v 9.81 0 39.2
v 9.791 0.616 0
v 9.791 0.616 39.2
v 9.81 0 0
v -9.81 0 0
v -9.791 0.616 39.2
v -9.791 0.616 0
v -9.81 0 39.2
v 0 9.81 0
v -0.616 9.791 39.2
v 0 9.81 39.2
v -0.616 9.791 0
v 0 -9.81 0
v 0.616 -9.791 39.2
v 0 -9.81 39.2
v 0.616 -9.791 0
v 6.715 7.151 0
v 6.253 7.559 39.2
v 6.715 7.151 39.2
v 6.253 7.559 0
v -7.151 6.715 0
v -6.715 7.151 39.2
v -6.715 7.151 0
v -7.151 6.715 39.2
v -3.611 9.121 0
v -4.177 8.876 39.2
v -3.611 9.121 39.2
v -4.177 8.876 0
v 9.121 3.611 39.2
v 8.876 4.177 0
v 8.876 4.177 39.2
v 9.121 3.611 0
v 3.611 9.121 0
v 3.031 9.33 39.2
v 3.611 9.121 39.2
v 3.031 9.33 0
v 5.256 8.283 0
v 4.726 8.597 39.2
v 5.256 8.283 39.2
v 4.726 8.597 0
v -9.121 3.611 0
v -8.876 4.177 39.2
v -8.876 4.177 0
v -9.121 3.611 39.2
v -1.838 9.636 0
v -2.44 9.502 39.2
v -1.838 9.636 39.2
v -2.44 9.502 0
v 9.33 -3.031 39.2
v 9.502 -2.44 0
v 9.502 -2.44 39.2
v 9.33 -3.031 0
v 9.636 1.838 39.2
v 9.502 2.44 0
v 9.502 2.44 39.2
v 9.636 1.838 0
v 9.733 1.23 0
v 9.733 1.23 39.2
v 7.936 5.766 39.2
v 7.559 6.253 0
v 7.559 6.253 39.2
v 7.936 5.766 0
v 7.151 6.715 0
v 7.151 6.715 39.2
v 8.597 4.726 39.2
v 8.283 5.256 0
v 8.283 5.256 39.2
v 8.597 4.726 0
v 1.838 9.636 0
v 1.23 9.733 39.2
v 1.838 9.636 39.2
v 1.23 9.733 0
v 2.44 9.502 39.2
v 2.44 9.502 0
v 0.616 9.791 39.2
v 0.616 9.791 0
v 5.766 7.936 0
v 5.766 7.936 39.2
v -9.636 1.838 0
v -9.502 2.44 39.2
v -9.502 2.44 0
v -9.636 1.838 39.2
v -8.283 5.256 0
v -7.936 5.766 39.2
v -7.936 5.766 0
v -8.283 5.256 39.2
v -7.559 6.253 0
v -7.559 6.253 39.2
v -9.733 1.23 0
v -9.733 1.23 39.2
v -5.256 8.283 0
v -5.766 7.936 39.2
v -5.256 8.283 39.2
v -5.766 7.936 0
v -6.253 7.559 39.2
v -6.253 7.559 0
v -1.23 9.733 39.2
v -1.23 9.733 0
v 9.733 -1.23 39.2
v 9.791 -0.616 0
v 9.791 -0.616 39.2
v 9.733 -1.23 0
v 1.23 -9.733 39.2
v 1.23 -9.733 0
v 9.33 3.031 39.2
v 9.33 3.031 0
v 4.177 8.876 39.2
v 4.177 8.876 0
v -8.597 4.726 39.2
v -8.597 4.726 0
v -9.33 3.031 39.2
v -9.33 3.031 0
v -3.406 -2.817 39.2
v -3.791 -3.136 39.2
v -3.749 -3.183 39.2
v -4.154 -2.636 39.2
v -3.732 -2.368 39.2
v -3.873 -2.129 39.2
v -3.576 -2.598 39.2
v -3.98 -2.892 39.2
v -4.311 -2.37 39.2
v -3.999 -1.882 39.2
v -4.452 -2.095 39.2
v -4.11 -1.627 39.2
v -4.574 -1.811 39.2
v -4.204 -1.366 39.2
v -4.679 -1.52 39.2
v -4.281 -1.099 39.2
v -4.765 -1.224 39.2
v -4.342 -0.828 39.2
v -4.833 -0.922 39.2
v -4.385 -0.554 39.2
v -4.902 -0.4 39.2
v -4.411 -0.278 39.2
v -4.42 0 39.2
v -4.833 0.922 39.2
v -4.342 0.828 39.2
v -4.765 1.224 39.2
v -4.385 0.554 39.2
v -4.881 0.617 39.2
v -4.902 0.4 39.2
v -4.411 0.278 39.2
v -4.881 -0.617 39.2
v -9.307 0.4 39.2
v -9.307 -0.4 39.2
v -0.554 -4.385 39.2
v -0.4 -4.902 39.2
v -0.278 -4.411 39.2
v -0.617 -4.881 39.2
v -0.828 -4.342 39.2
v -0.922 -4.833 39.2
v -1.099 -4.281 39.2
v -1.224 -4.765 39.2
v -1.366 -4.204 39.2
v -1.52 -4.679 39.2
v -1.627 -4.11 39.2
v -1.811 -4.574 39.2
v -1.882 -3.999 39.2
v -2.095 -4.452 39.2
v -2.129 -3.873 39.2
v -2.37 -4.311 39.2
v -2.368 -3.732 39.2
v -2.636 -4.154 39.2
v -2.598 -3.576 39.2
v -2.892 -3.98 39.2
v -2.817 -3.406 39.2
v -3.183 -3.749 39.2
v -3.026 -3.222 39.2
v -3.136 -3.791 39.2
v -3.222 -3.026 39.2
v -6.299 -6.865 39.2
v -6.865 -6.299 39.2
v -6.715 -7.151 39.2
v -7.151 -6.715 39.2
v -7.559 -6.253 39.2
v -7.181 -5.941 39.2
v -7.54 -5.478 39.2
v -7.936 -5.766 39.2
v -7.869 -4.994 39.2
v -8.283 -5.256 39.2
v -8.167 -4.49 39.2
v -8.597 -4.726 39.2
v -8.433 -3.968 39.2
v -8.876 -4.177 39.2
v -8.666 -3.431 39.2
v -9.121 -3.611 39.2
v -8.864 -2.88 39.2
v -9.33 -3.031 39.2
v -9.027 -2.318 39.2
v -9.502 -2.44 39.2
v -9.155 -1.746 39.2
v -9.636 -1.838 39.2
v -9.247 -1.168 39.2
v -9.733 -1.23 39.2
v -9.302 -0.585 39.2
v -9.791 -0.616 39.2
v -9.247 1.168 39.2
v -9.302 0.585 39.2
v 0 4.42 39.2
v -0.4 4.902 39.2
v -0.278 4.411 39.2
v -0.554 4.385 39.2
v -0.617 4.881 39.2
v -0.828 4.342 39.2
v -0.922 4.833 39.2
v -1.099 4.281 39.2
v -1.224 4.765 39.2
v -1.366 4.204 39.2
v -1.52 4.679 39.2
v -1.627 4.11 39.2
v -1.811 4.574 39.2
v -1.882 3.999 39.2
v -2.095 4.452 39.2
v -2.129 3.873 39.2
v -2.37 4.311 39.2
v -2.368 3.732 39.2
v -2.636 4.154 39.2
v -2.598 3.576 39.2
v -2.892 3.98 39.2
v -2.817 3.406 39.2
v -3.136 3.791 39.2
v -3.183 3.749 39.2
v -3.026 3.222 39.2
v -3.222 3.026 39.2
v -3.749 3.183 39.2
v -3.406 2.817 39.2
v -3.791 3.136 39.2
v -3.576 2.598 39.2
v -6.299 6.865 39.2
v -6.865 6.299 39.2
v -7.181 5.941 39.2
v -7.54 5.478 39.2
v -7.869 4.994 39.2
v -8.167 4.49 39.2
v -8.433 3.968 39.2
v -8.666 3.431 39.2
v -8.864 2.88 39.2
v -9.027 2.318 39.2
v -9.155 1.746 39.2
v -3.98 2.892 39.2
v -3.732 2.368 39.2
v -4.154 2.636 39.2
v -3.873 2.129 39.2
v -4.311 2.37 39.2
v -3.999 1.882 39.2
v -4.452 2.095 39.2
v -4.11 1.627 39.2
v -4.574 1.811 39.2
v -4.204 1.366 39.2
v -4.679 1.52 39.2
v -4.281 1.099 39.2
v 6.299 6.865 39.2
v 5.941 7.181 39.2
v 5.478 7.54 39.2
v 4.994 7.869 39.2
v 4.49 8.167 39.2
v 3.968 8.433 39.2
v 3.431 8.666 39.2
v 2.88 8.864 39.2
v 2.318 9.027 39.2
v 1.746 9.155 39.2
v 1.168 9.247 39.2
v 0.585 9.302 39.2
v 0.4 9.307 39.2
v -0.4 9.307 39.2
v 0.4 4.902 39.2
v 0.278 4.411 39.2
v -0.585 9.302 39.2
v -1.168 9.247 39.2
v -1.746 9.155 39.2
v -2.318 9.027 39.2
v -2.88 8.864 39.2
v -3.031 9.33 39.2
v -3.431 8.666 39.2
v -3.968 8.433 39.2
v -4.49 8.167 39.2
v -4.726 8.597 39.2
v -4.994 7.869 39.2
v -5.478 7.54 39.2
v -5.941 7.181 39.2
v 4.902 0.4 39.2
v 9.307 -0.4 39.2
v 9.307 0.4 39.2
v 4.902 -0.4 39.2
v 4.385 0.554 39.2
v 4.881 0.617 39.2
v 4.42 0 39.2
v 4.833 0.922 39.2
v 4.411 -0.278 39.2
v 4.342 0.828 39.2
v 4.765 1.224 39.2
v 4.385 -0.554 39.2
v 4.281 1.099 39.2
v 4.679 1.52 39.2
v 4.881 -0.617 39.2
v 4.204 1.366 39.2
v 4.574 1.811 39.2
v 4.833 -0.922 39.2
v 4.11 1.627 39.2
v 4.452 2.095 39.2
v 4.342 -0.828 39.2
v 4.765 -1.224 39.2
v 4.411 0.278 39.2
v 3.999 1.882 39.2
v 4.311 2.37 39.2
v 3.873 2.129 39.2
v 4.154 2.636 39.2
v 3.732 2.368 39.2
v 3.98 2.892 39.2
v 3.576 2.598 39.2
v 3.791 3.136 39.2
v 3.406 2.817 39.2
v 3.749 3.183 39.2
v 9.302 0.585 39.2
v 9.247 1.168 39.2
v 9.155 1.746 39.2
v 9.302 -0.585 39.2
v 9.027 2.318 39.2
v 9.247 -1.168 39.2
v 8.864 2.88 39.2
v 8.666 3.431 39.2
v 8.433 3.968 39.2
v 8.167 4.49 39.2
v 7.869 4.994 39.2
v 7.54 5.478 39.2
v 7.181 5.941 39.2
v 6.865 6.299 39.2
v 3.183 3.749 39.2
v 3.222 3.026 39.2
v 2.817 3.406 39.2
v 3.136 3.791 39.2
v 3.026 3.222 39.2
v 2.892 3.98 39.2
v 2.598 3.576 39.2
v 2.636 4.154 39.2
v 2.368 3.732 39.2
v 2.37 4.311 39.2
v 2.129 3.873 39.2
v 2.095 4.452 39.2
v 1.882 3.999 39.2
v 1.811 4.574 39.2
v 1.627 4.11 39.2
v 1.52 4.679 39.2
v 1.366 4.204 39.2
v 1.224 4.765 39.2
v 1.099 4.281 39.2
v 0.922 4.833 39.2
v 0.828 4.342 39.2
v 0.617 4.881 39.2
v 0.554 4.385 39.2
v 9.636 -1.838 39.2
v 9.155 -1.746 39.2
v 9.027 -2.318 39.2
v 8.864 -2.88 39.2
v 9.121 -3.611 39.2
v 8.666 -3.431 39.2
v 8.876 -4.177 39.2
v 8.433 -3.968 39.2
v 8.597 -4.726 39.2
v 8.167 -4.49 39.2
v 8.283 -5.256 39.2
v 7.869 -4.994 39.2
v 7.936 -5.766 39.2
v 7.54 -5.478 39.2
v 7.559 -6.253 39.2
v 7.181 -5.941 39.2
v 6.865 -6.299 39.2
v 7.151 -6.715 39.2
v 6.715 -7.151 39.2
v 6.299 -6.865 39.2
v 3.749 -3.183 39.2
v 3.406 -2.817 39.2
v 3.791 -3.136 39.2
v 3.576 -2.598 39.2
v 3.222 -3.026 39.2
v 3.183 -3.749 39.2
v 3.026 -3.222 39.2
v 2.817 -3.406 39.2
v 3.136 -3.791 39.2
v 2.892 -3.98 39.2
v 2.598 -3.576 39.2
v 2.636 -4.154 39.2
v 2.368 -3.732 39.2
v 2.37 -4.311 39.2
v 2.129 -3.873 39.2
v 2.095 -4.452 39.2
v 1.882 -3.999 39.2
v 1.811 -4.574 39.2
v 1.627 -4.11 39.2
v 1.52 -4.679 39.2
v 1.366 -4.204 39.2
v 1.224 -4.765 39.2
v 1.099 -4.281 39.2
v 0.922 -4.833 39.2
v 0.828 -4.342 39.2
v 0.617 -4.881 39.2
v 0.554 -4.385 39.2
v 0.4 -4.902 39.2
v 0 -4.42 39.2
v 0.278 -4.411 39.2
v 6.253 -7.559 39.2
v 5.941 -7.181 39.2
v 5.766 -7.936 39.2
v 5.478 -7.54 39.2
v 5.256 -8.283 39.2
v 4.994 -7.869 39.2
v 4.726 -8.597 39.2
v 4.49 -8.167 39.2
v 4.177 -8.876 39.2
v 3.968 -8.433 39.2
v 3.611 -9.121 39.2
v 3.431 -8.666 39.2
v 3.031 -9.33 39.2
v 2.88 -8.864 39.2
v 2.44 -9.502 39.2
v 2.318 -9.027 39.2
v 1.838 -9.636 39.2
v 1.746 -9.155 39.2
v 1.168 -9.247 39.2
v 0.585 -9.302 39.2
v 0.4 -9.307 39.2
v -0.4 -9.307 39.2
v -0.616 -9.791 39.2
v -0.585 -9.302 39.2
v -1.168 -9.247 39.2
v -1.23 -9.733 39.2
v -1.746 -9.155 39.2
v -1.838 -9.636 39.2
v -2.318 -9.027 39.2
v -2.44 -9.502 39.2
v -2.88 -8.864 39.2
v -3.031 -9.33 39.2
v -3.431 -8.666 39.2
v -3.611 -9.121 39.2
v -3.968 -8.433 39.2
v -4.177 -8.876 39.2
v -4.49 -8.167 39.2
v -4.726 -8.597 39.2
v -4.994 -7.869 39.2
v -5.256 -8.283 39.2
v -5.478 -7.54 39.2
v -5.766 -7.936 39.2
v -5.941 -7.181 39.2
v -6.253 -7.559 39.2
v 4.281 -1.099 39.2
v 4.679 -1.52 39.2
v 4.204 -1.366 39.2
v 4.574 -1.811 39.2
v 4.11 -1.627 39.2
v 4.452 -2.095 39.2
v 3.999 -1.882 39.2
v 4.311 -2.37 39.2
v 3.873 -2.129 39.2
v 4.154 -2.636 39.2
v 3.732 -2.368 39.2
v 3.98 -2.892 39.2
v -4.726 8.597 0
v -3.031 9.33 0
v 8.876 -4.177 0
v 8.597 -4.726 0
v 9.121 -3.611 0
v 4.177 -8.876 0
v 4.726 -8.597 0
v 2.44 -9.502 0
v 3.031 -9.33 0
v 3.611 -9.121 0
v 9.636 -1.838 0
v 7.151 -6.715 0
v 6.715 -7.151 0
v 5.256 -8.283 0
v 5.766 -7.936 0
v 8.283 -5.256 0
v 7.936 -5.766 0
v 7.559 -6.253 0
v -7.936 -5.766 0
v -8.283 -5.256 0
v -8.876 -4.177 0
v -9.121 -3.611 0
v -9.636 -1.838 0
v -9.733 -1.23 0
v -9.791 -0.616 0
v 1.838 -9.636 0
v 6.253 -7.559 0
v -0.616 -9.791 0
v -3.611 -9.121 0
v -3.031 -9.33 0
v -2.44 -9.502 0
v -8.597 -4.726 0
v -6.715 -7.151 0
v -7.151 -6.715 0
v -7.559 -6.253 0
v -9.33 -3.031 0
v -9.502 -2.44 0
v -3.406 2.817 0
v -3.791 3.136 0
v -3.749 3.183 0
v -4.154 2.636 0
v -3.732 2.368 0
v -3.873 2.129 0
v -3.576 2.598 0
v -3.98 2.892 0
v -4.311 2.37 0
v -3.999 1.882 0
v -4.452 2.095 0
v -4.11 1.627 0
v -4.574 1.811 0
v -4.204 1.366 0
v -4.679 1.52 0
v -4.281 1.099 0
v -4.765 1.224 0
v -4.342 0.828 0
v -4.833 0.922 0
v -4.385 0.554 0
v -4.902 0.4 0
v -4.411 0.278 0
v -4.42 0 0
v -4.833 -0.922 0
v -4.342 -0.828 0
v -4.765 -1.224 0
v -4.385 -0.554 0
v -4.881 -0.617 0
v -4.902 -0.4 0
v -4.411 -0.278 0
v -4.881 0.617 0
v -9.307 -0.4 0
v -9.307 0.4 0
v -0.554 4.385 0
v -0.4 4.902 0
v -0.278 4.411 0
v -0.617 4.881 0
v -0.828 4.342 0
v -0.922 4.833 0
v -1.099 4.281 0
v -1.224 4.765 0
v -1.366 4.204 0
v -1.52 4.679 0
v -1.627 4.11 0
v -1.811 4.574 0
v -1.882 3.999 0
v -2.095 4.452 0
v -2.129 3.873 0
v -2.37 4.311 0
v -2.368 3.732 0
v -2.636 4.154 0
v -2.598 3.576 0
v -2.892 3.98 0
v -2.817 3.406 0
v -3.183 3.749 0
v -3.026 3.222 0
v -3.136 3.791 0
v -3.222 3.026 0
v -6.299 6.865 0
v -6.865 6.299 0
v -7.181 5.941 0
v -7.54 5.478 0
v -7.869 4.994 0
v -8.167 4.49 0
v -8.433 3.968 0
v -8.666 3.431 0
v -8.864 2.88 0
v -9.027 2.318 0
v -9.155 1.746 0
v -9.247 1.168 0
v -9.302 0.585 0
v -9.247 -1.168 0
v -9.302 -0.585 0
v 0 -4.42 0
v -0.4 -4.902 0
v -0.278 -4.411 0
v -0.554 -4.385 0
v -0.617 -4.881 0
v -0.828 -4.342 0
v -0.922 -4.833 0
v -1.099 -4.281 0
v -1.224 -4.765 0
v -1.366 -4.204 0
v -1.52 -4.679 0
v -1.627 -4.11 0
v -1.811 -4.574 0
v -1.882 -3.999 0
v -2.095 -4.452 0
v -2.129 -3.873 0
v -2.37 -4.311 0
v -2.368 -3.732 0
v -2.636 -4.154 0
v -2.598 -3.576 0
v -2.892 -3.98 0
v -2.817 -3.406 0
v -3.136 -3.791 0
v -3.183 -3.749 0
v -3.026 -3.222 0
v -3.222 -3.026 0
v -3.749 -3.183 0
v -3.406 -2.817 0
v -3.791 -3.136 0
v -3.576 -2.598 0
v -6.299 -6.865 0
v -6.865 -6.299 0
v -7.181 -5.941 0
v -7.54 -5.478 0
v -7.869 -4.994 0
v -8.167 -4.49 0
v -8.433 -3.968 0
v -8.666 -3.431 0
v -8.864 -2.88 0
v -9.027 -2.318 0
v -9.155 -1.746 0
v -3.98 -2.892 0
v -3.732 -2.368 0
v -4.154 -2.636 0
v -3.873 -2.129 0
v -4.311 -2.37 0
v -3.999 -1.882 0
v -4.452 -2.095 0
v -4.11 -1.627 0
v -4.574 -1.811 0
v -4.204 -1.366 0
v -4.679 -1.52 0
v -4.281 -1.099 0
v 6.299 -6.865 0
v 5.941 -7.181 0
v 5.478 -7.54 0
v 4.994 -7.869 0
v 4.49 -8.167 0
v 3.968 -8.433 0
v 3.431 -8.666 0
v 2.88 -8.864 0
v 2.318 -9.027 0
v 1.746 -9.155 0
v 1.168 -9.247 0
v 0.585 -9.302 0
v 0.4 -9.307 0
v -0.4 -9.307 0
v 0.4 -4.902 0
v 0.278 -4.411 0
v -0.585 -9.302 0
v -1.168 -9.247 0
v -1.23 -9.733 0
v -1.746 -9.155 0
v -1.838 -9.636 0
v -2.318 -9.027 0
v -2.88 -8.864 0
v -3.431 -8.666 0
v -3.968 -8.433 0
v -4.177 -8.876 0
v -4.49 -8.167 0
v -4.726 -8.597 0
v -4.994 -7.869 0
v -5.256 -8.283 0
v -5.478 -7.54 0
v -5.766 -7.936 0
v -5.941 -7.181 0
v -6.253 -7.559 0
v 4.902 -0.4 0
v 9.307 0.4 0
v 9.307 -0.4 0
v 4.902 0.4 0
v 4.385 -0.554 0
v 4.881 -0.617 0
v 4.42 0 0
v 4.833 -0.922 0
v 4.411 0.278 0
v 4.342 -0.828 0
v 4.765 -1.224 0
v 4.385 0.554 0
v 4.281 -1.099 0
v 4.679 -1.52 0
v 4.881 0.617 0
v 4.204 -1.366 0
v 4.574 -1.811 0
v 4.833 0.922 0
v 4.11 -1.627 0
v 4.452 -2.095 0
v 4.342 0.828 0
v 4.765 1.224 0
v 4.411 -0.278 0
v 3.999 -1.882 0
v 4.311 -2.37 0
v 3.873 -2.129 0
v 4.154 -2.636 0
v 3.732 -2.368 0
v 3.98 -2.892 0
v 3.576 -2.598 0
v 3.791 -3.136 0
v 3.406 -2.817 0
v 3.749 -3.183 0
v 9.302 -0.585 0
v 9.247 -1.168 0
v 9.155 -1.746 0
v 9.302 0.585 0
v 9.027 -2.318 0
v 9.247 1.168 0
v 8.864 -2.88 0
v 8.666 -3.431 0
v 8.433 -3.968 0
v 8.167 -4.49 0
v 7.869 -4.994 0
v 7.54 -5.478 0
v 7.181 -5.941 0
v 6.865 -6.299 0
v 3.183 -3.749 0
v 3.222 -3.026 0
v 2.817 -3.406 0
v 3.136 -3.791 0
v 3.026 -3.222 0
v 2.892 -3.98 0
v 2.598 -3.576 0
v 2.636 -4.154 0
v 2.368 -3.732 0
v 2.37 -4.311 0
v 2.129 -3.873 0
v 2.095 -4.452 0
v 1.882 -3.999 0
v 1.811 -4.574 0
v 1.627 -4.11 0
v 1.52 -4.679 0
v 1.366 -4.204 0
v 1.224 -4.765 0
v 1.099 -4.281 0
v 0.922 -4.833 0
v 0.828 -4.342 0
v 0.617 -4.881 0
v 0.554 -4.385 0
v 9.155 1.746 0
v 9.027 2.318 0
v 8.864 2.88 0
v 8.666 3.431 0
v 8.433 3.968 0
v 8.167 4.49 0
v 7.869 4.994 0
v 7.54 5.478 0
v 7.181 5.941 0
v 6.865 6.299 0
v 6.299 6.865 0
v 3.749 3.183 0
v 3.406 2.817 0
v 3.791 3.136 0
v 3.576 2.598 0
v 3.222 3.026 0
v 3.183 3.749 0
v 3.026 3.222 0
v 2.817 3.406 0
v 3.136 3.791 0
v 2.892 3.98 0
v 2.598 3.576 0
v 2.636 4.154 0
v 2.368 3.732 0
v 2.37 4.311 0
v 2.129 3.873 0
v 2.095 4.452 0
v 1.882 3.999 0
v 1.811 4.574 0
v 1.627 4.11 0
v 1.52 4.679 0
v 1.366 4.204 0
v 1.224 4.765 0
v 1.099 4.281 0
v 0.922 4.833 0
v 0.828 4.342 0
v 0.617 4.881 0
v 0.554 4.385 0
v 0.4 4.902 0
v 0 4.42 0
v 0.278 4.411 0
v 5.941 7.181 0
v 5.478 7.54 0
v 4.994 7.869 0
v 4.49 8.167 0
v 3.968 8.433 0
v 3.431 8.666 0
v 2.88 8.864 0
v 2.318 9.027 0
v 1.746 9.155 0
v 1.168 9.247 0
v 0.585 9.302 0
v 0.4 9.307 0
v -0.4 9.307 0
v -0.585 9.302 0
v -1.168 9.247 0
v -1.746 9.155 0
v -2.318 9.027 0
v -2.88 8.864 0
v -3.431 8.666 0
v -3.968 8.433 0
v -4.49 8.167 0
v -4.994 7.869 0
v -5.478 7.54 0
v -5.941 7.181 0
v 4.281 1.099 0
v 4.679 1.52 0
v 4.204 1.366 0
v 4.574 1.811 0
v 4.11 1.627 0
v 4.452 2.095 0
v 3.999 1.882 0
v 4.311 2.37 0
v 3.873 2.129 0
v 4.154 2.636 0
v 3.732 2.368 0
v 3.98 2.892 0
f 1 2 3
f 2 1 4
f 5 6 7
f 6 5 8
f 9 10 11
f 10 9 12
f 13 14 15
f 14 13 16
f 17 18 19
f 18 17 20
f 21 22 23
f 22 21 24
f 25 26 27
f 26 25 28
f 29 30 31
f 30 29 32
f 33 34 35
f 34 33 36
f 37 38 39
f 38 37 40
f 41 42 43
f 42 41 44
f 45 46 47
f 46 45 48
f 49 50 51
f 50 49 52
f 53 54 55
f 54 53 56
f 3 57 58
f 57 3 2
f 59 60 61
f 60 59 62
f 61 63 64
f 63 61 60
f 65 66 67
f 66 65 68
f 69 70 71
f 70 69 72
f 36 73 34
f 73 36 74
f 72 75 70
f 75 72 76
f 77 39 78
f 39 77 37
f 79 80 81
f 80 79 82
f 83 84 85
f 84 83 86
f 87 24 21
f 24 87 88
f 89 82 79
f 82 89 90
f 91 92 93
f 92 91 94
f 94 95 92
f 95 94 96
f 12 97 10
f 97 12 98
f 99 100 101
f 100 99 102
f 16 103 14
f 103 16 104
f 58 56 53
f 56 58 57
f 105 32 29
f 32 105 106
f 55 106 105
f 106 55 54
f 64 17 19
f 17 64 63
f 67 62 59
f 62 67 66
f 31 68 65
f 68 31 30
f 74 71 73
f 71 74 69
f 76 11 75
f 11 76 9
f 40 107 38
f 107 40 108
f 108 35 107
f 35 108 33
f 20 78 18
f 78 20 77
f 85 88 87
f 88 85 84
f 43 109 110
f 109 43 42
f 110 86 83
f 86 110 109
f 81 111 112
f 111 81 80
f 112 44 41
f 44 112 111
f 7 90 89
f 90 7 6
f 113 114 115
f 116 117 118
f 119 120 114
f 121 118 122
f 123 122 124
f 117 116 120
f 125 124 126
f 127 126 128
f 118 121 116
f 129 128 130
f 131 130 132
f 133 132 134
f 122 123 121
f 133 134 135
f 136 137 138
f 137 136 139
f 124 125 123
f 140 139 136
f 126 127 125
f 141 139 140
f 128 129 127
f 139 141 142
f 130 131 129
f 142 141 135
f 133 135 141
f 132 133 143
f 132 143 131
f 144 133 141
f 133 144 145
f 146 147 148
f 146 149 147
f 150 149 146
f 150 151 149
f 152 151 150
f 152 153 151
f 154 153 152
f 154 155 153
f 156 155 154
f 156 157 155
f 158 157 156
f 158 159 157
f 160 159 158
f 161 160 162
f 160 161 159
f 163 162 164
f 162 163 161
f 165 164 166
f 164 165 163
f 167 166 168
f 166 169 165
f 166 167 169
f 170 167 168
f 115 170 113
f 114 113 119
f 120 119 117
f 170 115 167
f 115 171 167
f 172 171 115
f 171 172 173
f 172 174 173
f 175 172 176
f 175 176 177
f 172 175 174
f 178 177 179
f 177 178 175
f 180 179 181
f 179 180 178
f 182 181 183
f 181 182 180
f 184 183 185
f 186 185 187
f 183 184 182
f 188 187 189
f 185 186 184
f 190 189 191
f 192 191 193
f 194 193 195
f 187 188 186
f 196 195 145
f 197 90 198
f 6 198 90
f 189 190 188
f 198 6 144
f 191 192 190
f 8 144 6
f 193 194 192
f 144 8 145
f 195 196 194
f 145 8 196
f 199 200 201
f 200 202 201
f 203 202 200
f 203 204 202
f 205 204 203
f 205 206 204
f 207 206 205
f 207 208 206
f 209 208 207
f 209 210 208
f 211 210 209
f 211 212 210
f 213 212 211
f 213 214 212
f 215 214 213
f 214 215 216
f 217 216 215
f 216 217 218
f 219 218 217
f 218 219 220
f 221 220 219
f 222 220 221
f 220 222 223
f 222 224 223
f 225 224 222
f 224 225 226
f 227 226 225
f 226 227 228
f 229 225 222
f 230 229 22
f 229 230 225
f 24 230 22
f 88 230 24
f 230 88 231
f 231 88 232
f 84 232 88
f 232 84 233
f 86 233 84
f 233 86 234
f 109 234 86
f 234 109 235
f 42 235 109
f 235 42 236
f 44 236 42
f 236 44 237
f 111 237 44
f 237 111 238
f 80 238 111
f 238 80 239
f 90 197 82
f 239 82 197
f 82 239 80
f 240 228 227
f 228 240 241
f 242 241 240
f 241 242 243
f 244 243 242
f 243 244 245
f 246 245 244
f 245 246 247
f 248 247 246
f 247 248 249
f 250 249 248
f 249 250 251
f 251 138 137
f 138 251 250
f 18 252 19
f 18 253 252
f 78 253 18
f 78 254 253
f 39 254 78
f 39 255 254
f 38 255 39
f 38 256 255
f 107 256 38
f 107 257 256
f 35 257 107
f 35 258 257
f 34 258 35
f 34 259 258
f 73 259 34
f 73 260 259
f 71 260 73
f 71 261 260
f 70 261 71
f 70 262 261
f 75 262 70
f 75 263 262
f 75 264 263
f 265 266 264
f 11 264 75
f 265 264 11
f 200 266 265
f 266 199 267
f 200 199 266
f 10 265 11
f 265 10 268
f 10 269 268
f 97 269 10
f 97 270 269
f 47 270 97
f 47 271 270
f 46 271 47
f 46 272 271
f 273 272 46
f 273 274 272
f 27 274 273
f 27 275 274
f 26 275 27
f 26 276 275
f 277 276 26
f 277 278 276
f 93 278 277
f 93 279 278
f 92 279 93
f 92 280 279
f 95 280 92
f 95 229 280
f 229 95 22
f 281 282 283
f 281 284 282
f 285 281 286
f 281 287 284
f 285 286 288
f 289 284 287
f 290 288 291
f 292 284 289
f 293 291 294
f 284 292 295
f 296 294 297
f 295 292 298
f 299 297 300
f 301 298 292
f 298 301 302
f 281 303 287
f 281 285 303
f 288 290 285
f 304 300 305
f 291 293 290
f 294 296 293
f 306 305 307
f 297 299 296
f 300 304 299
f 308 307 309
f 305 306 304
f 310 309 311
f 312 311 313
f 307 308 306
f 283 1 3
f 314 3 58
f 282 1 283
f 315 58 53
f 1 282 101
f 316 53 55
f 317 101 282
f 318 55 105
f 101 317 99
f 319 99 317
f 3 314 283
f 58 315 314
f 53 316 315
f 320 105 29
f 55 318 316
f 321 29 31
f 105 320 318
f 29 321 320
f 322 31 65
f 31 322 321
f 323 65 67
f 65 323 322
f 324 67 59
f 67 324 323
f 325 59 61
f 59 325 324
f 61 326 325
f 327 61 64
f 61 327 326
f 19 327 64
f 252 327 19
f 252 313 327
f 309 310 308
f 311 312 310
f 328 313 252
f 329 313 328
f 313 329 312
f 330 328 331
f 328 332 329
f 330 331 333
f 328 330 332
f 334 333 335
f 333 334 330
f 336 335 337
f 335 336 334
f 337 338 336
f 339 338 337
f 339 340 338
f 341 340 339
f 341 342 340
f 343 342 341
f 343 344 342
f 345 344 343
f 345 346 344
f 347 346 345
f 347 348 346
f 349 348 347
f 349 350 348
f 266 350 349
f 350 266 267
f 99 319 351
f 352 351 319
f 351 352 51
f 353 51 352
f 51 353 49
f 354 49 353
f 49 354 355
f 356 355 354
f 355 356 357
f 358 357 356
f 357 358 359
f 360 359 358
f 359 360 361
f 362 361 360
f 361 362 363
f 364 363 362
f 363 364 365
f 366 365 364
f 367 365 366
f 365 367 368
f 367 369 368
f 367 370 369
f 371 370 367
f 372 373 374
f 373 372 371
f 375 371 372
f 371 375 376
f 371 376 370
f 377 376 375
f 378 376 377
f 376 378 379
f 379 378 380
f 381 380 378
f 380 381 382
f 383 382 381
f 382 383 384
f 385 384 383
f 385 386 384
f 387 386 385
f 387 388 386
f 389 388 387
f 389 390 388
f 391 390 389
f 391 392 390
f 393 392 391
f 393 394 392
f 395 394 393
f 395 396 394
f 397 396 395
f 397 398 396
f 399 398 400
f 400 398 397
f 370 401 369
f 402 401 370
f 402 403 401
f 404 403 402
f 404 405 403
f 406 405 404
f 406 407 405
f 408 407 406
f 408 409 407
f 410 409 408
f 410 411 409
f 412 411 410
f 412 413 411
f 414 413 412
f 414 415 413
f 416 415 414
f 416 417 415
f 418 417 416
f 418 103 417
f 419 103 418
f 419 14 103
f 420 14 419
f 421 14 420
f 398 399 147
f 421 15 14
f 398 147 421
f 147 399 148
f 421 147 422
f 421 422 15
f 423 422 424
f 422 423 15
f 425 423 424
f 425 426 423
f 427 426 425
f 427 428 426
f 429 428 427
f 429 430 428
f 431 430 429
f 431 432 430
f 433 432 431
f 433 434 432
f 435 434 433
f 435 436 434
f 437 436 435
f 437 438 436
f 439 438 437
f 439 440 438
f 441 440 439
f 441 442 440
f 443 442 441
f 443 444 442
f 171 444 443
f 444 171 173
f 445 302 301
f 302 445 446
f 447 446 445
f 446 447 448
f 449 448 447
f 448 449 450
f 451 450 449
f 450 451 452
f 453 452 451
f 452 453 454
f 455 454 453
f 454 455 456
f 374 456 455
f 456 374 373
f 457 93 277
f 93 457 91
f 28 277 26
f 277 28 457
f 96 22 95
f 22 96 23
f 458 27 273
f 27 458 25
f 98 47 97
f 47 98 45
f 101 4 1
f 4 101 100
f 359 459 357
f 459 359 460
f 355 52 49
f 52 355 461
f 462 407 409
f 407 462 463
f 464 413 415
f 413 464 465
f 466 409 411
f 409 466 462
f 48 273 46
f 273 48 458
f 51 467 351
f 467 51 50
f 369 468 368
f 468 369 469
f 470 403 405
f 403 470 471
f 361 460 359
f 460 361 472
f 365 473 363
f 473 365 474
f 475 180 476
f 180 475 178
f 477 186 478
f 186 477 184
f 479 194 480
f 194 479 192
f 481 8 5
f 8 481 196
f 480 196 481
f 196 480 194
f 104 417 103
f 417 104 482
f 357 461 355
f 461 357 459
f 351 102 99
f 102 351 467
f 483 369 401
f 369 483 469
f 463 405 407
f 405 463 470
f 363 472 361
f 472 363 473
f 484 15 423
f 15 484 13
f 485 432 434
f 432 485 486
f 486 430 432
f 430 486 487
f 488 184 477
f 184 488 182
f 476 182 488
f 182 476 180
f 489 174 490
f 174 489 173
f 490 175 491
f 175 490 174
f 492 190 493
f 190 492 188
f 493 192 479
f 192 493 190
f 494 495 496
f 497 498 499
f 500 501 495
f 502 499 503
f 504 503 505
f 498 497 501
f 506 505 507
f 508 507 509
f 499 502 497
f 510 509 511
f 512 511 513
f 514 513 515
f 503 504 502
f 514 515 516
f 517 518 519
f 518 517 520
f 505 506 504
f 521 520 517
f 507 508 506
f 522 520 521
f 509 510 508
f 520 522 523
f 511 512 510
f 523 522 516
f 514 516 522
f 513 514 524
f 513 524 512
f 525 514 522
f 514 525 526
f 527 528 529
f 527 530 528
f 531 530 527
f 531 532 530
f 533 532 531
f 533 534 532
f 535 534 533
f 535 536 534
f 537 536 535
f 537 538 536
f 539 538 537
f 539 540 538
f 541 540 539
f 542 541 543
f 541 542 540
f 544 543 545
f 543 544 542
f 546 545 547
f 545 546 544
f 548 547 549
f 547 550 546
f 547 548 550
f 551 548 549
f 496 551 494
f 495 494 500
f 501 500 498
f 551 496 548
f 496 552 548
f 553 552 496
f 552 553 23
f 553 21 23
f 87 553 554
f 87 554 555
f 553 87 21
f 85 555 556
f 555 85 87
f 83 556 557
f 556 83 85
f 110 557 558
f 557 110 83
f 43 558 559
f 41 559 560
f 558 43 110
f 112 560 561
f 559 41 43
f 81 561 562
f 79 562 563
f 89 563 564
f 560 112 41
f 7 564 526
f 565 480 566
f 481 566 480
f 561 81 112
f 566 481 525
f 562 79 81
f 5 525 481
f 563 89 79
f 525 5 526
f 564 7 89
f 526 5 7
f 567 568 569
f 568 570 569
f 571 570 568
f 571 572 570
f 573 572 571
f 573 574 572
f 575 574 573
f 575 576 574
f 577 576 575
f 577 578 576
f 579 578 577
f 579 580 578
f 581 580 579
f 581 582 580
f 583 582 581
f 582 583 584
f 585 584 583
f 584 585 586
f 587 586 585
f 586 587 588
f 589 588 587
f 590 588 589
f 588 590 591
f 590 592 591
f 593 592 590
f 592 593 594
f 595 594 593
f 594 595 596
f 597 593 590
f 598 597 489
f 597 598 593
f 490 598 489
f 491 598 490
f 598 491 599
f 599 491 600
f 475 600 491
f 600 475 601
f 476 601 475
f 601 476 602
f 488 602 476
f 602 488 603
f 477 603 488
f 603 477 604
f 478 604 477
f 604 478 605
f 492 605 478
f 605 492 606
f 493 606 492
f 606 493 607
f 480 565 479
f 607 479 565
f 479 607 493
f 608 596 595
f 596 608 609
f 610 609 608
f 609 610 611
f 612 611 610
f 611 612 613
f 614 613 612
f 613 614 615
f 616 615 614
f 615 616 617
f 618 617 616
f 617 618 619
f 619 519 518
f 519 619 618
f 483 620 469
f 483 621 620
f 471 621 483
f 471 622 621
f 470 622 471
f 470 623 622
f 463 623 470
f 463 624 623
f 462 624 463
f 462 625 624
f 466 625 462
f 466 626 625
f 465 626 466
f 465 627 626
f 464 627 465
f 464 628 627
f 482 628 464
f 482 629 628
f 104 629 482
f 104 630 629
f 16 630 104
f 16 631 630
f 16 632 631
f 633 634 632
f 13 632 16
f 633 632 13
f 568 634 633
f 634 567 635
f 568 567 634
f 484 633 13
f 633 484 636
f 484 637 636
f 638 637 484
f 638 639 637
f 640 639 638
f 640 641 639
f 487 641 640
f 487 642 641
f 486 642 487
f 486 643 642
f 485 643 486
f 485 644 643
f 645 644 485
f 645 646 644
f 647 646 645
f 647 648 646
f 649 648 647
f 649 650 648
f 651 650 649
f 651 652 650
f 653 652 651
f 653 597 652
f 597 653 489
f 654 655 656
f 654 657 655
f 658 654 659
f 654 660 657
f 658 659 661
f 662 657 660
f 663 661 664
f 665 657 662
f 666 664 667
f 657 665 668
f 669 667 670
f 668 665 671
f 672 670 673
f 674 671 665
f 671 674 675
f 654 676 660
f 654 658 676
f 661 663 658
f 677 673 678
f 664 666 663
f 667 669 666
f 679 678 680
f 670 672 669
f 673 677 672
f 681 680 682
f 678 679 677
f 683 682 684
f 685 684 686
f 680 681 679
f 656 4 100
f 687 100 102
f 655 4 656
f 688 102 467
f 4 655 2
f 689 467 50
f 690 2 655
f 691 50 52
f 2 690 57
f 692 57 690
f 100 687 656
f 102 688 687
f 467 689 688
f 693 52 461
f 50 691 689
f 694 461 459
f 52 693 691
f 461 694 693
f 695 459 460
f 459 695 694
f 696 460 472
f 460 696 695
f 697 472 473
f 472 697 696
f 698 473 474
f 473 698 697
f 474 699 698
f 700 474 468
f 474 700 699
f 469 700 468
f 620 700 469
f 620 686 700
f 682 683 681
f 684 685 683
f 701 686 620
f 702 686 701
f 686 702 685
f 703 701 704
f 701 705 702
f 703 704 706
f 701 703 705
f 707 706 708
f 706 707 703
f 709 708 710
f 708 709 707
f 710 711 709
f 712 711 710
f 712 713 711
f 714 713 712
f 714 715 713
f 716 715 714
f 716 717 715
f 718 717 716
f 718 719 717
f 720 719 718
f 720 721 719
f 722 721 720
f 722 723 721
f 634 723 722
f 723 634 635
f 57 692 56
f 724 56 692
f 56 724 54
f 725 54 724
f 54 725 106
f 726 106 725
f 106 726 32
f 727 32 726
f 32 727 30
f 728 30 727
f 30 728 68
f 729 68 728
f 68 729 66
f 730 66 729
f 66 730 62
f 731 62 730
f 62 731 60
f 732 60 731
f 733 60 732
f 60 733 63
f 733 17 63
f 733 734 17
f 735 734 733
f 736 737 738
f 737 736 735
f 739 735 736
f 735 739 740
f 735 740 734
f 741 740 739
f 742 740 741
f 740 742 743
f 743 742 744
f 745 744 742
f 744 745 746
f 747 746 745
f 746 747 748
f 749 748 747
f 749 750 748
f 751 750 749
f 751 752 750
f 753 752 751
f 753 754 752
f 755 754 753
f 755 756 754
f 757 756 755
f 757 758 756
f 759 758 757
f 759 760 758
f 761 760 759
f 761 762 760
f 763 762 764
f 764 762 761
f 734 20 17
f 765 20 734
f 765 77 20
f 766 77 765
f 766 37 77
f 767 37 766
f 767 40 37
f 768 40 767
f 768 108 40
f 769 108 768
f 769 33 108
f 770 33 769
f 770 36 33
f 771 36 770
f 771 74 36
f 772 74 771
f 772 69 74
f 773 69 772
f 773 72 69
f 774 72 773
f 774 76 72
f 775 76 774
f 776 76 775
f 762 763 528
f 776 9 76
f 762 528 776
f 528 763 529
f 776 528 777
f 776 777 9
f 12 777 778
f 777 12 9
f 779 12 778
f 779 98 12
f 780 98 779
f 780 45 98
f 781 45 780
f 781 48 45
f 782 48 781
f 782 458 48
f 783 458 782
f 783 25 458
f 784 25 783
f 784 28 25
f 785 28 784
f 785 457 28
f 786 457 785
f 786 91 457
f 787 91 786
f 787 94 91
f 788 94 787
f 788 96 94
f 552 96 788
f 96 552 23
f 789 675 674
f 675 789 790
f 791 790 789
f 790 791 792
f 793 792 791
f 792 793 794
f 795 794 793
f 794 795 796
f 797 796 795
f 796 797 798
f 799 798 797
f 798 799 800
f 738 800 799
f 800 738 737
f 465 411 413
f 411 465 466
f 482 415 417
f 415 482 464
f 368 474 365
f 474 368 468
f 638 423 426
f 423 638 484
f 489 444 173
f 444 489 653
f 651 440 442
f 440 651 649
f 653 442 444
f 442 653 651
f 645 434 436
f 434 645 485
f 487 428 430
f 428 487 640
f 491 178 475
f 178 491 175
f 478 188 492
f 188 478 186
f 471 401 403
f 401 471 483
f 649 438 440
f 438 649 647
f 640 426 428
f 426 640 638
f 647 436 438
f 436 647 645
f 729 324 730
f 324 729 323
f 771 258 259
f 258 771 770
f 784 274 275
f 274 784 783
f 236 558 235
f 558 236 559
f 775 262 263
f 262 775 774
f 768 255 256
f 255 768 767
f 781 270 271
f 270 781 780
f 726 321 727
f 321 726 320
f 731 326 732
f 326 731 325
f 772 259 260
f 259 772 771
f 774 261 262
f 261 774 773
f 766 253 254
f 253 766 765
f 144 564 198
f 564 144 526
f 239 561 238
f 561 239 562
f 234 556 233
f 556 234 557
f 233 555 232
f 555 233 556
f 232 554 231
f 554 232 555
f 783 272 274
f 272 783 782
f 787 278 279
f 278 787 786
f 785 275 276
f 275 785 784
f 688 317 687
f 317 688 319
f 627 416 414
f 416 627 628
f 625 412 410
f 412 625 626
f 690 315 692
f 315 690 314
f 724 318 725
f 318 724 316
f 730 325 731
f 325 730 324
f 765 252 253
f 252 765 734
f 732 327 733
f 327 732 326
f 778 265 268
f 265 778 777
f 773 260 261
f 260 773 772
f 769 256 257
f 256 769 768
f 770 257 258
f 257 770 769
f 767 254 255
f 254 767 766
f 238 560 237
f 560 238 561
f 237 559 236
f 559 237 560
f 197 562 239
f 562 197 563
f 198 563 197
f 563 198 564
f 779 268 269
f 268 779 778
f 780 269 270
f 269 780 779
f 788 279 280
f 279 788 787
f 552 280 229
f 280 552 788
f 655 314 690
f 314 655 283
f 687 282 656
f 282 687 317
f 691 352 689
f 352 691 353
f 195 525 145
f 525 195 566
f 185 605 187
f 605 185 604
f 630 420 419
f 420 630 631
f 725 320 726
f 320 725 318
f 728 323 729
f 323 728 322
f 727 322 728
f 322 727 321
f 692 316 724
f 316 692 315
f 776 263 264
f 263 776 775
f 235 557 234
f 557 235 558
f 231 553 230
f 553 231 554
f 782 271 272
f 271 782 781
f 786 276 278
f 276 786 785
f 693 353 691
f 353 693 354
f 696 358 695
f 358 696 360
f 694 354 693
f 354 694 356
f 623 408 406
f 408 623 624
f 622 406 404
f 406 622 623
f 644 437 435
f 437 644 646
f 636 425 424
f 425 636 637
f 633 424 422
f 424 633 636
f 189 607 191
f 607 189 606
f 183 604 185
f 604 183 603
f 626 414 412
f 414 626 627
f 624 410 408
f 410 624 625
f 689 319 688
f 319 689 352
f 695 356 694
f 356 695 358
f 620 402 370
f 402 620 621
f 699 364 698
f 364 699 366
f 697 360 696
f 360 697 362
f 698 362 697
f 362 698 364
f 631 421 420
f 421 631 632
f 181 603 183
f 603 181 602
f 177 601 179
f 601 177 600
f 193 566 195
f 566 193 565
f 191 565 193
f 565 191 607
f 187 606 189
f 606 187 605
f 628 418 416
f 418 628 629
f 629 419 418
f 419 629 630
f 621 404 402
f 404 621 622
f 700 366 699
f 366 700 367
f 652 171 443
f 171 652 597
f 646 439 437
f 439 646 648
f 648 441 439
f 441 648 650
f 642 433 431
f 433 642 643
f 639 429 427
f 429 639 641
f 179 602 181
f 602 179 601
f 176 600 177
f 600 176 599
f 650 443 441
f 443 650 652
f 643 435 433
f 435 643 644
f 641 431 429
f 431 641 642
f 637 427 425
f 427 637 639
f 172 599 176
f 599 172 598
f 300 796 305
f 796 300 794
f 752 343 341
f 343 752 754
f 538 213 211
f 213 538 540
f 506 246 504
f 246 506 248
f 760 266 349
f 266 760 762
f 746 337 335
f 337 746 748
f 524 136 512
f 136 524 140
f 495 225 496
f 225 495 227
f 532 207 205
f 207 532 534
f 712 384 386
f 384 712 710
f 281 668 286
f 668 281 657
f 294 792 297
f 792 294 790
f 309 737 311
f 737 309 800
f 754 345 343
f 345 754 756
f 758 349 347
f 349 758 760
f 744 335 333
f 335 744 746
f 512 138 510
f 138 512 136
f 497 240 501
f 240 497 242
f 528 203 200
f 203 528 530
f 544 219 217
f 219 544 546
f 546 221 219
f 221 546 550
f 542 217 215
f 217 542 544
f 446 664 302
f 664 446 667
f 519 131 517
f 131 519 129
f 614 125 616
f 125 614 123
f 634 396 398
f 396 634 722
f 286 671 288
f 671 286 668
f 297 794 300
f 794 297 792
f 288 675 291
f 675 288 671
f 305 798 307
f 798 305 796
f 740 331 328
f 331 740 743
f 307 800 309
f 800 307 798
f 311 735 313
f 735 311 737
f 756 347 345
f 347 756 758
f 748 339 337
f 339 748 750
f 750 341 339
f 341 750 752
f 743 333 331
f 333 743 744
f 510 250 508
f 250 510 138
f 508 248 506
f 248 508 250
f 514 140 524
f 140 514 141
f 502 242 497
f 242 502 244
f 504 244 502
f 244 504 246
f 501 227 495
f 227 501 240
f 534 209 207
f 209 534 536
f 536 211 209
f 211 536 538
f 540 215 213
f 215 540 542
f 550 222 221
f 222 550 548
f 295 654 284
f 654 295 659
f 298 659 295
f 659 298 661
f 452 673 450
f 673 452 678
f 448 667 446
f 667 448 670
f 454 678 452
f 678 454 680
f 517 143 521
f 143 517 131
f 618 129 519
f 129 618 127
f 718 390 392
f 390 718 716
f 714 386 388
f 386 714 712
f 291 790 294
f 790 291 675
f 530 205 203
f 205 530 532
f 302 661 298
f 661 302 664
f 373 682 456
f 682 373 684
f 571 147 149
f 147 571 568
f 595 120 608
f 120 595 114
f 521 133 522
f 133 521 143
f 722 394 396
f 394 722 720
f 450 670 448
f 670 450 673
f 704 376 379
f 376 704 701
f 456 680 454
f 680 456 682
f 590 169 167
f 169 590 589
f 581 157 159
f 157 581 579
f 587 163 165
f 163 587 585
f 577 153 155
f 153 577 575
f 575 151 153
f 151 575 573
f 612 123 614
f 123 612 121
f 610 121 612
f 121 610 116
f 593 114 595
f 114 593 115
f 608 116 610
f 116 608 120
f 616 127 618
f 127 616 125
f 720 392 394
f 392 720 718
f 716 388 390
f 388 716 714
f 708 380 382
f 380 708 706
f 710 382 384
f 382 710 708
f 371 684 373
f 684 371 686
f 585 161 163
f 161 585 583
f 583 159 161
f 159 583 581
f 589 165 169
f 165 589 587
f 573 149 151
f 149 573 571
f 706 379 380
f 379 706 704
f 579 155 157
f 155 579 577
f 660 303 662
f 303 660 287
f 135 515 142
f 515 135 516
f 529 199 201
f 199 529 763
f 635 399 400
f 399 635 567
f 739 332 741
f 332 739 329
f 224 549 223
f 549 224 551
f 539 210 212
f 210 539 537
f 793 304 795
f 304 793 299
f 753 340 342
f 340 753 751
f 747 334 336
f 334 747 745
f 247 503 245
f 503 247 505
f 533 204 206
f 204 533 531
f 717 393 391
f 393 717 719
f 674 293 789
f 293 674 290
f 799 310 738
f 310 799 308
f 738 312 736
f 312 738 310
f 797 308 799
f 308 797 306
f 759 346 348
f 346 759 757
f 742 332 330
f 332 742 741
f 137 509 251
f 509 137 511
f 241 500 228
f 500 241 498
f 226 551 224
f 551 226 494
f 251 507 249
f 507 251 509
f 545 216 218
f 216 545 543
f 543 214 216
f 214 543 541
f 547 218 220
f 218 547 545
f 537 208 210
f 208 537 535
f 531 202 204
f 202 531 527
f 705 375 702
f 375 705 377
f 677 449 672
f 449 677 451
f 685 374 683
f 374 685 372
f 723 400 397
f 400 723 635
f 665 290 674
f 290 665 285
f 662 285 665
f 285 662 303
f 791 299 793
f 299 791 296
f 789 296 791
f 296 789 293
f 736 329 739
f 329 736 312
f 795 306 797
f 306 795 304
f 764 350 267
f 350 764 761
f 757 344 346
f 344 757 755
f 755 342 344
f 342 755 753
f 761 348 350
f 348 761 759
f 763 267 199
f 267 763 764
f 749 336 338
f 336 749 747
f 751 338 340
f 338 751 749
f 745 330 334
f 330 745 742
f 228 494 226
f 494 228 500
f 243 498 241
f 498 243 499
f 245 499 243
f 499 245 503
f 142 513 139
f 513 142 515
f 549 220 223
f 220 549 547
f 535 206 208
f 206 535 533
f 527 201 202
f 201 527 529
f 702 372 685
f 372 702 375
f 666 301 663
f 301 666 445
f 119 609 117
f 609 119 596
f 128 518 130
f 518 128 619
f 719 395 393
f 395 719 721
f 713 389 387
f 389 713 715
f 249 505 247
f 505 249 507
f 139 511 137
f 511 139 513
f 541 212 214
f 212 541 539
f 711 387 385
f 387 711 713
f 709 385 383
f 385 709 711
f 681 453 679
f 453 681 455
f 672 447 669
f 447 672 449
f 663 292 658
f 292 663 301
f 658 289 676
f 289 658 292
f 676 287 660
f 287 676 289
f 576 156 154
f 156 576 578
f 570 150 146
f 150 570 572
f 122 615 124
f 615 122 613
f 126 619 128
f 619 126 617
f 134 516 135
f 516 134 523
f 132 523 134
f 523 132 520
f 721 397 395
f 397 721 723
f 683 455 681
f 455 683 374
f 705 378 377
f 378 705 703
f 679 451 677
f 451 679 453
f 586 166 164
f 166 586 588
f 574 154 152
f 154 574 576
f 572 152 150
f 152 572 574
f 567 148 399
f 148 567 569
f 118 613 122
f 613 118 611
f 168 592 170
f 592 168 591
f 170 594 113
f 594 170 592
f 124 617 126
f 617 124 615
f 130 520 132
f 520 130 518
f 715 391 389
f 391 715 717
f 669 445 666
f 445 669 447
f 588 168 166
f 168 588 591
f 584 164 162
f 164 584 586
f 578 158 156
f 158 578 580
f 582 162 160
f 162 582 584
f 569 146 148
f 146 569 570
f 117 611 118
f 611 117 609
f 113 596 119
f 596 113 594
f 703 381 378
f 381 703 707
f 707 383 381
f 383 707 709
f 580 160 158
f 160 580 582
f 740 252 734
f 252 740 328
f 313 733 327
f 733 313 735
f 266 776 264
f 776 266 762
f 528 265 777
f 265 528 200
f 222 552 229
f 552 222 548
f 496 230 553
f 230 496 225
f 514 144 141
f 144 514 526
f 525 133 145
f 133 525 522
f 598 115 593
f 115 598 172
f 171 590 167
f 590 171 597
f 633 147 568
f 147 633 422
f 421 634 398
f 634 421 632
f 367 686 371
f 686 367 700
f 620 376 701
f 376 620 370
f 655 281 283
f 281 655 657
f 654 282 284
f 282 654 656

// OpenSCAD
//fn=numb of fragments; fa=min angle; fs=min size
$fn=100;
$fa=12;
$fs=2;

Re=9.81;
Ri=9.32;
Rb=4.92;
Ra=4.42;
xp=4.9;
yp=0.8;
H=39.2;

difference(){
    cylinder(H,Re,Re,false);
    cylinder(H,Ri,Ri,false);
}       
difference(){
    cylinder(H,Rb,Rb,false);
    cylinder(H,Ra,Ra,false);
}    
for(n=[1:8])
{
    rotate([0,0,n*45])
    {
        difference(){
            translate([Rb+(xp/2)-((Rb-Ra)/2),0,H/2]) cube([xp,yp,H],true);
            
        }
     }
}
